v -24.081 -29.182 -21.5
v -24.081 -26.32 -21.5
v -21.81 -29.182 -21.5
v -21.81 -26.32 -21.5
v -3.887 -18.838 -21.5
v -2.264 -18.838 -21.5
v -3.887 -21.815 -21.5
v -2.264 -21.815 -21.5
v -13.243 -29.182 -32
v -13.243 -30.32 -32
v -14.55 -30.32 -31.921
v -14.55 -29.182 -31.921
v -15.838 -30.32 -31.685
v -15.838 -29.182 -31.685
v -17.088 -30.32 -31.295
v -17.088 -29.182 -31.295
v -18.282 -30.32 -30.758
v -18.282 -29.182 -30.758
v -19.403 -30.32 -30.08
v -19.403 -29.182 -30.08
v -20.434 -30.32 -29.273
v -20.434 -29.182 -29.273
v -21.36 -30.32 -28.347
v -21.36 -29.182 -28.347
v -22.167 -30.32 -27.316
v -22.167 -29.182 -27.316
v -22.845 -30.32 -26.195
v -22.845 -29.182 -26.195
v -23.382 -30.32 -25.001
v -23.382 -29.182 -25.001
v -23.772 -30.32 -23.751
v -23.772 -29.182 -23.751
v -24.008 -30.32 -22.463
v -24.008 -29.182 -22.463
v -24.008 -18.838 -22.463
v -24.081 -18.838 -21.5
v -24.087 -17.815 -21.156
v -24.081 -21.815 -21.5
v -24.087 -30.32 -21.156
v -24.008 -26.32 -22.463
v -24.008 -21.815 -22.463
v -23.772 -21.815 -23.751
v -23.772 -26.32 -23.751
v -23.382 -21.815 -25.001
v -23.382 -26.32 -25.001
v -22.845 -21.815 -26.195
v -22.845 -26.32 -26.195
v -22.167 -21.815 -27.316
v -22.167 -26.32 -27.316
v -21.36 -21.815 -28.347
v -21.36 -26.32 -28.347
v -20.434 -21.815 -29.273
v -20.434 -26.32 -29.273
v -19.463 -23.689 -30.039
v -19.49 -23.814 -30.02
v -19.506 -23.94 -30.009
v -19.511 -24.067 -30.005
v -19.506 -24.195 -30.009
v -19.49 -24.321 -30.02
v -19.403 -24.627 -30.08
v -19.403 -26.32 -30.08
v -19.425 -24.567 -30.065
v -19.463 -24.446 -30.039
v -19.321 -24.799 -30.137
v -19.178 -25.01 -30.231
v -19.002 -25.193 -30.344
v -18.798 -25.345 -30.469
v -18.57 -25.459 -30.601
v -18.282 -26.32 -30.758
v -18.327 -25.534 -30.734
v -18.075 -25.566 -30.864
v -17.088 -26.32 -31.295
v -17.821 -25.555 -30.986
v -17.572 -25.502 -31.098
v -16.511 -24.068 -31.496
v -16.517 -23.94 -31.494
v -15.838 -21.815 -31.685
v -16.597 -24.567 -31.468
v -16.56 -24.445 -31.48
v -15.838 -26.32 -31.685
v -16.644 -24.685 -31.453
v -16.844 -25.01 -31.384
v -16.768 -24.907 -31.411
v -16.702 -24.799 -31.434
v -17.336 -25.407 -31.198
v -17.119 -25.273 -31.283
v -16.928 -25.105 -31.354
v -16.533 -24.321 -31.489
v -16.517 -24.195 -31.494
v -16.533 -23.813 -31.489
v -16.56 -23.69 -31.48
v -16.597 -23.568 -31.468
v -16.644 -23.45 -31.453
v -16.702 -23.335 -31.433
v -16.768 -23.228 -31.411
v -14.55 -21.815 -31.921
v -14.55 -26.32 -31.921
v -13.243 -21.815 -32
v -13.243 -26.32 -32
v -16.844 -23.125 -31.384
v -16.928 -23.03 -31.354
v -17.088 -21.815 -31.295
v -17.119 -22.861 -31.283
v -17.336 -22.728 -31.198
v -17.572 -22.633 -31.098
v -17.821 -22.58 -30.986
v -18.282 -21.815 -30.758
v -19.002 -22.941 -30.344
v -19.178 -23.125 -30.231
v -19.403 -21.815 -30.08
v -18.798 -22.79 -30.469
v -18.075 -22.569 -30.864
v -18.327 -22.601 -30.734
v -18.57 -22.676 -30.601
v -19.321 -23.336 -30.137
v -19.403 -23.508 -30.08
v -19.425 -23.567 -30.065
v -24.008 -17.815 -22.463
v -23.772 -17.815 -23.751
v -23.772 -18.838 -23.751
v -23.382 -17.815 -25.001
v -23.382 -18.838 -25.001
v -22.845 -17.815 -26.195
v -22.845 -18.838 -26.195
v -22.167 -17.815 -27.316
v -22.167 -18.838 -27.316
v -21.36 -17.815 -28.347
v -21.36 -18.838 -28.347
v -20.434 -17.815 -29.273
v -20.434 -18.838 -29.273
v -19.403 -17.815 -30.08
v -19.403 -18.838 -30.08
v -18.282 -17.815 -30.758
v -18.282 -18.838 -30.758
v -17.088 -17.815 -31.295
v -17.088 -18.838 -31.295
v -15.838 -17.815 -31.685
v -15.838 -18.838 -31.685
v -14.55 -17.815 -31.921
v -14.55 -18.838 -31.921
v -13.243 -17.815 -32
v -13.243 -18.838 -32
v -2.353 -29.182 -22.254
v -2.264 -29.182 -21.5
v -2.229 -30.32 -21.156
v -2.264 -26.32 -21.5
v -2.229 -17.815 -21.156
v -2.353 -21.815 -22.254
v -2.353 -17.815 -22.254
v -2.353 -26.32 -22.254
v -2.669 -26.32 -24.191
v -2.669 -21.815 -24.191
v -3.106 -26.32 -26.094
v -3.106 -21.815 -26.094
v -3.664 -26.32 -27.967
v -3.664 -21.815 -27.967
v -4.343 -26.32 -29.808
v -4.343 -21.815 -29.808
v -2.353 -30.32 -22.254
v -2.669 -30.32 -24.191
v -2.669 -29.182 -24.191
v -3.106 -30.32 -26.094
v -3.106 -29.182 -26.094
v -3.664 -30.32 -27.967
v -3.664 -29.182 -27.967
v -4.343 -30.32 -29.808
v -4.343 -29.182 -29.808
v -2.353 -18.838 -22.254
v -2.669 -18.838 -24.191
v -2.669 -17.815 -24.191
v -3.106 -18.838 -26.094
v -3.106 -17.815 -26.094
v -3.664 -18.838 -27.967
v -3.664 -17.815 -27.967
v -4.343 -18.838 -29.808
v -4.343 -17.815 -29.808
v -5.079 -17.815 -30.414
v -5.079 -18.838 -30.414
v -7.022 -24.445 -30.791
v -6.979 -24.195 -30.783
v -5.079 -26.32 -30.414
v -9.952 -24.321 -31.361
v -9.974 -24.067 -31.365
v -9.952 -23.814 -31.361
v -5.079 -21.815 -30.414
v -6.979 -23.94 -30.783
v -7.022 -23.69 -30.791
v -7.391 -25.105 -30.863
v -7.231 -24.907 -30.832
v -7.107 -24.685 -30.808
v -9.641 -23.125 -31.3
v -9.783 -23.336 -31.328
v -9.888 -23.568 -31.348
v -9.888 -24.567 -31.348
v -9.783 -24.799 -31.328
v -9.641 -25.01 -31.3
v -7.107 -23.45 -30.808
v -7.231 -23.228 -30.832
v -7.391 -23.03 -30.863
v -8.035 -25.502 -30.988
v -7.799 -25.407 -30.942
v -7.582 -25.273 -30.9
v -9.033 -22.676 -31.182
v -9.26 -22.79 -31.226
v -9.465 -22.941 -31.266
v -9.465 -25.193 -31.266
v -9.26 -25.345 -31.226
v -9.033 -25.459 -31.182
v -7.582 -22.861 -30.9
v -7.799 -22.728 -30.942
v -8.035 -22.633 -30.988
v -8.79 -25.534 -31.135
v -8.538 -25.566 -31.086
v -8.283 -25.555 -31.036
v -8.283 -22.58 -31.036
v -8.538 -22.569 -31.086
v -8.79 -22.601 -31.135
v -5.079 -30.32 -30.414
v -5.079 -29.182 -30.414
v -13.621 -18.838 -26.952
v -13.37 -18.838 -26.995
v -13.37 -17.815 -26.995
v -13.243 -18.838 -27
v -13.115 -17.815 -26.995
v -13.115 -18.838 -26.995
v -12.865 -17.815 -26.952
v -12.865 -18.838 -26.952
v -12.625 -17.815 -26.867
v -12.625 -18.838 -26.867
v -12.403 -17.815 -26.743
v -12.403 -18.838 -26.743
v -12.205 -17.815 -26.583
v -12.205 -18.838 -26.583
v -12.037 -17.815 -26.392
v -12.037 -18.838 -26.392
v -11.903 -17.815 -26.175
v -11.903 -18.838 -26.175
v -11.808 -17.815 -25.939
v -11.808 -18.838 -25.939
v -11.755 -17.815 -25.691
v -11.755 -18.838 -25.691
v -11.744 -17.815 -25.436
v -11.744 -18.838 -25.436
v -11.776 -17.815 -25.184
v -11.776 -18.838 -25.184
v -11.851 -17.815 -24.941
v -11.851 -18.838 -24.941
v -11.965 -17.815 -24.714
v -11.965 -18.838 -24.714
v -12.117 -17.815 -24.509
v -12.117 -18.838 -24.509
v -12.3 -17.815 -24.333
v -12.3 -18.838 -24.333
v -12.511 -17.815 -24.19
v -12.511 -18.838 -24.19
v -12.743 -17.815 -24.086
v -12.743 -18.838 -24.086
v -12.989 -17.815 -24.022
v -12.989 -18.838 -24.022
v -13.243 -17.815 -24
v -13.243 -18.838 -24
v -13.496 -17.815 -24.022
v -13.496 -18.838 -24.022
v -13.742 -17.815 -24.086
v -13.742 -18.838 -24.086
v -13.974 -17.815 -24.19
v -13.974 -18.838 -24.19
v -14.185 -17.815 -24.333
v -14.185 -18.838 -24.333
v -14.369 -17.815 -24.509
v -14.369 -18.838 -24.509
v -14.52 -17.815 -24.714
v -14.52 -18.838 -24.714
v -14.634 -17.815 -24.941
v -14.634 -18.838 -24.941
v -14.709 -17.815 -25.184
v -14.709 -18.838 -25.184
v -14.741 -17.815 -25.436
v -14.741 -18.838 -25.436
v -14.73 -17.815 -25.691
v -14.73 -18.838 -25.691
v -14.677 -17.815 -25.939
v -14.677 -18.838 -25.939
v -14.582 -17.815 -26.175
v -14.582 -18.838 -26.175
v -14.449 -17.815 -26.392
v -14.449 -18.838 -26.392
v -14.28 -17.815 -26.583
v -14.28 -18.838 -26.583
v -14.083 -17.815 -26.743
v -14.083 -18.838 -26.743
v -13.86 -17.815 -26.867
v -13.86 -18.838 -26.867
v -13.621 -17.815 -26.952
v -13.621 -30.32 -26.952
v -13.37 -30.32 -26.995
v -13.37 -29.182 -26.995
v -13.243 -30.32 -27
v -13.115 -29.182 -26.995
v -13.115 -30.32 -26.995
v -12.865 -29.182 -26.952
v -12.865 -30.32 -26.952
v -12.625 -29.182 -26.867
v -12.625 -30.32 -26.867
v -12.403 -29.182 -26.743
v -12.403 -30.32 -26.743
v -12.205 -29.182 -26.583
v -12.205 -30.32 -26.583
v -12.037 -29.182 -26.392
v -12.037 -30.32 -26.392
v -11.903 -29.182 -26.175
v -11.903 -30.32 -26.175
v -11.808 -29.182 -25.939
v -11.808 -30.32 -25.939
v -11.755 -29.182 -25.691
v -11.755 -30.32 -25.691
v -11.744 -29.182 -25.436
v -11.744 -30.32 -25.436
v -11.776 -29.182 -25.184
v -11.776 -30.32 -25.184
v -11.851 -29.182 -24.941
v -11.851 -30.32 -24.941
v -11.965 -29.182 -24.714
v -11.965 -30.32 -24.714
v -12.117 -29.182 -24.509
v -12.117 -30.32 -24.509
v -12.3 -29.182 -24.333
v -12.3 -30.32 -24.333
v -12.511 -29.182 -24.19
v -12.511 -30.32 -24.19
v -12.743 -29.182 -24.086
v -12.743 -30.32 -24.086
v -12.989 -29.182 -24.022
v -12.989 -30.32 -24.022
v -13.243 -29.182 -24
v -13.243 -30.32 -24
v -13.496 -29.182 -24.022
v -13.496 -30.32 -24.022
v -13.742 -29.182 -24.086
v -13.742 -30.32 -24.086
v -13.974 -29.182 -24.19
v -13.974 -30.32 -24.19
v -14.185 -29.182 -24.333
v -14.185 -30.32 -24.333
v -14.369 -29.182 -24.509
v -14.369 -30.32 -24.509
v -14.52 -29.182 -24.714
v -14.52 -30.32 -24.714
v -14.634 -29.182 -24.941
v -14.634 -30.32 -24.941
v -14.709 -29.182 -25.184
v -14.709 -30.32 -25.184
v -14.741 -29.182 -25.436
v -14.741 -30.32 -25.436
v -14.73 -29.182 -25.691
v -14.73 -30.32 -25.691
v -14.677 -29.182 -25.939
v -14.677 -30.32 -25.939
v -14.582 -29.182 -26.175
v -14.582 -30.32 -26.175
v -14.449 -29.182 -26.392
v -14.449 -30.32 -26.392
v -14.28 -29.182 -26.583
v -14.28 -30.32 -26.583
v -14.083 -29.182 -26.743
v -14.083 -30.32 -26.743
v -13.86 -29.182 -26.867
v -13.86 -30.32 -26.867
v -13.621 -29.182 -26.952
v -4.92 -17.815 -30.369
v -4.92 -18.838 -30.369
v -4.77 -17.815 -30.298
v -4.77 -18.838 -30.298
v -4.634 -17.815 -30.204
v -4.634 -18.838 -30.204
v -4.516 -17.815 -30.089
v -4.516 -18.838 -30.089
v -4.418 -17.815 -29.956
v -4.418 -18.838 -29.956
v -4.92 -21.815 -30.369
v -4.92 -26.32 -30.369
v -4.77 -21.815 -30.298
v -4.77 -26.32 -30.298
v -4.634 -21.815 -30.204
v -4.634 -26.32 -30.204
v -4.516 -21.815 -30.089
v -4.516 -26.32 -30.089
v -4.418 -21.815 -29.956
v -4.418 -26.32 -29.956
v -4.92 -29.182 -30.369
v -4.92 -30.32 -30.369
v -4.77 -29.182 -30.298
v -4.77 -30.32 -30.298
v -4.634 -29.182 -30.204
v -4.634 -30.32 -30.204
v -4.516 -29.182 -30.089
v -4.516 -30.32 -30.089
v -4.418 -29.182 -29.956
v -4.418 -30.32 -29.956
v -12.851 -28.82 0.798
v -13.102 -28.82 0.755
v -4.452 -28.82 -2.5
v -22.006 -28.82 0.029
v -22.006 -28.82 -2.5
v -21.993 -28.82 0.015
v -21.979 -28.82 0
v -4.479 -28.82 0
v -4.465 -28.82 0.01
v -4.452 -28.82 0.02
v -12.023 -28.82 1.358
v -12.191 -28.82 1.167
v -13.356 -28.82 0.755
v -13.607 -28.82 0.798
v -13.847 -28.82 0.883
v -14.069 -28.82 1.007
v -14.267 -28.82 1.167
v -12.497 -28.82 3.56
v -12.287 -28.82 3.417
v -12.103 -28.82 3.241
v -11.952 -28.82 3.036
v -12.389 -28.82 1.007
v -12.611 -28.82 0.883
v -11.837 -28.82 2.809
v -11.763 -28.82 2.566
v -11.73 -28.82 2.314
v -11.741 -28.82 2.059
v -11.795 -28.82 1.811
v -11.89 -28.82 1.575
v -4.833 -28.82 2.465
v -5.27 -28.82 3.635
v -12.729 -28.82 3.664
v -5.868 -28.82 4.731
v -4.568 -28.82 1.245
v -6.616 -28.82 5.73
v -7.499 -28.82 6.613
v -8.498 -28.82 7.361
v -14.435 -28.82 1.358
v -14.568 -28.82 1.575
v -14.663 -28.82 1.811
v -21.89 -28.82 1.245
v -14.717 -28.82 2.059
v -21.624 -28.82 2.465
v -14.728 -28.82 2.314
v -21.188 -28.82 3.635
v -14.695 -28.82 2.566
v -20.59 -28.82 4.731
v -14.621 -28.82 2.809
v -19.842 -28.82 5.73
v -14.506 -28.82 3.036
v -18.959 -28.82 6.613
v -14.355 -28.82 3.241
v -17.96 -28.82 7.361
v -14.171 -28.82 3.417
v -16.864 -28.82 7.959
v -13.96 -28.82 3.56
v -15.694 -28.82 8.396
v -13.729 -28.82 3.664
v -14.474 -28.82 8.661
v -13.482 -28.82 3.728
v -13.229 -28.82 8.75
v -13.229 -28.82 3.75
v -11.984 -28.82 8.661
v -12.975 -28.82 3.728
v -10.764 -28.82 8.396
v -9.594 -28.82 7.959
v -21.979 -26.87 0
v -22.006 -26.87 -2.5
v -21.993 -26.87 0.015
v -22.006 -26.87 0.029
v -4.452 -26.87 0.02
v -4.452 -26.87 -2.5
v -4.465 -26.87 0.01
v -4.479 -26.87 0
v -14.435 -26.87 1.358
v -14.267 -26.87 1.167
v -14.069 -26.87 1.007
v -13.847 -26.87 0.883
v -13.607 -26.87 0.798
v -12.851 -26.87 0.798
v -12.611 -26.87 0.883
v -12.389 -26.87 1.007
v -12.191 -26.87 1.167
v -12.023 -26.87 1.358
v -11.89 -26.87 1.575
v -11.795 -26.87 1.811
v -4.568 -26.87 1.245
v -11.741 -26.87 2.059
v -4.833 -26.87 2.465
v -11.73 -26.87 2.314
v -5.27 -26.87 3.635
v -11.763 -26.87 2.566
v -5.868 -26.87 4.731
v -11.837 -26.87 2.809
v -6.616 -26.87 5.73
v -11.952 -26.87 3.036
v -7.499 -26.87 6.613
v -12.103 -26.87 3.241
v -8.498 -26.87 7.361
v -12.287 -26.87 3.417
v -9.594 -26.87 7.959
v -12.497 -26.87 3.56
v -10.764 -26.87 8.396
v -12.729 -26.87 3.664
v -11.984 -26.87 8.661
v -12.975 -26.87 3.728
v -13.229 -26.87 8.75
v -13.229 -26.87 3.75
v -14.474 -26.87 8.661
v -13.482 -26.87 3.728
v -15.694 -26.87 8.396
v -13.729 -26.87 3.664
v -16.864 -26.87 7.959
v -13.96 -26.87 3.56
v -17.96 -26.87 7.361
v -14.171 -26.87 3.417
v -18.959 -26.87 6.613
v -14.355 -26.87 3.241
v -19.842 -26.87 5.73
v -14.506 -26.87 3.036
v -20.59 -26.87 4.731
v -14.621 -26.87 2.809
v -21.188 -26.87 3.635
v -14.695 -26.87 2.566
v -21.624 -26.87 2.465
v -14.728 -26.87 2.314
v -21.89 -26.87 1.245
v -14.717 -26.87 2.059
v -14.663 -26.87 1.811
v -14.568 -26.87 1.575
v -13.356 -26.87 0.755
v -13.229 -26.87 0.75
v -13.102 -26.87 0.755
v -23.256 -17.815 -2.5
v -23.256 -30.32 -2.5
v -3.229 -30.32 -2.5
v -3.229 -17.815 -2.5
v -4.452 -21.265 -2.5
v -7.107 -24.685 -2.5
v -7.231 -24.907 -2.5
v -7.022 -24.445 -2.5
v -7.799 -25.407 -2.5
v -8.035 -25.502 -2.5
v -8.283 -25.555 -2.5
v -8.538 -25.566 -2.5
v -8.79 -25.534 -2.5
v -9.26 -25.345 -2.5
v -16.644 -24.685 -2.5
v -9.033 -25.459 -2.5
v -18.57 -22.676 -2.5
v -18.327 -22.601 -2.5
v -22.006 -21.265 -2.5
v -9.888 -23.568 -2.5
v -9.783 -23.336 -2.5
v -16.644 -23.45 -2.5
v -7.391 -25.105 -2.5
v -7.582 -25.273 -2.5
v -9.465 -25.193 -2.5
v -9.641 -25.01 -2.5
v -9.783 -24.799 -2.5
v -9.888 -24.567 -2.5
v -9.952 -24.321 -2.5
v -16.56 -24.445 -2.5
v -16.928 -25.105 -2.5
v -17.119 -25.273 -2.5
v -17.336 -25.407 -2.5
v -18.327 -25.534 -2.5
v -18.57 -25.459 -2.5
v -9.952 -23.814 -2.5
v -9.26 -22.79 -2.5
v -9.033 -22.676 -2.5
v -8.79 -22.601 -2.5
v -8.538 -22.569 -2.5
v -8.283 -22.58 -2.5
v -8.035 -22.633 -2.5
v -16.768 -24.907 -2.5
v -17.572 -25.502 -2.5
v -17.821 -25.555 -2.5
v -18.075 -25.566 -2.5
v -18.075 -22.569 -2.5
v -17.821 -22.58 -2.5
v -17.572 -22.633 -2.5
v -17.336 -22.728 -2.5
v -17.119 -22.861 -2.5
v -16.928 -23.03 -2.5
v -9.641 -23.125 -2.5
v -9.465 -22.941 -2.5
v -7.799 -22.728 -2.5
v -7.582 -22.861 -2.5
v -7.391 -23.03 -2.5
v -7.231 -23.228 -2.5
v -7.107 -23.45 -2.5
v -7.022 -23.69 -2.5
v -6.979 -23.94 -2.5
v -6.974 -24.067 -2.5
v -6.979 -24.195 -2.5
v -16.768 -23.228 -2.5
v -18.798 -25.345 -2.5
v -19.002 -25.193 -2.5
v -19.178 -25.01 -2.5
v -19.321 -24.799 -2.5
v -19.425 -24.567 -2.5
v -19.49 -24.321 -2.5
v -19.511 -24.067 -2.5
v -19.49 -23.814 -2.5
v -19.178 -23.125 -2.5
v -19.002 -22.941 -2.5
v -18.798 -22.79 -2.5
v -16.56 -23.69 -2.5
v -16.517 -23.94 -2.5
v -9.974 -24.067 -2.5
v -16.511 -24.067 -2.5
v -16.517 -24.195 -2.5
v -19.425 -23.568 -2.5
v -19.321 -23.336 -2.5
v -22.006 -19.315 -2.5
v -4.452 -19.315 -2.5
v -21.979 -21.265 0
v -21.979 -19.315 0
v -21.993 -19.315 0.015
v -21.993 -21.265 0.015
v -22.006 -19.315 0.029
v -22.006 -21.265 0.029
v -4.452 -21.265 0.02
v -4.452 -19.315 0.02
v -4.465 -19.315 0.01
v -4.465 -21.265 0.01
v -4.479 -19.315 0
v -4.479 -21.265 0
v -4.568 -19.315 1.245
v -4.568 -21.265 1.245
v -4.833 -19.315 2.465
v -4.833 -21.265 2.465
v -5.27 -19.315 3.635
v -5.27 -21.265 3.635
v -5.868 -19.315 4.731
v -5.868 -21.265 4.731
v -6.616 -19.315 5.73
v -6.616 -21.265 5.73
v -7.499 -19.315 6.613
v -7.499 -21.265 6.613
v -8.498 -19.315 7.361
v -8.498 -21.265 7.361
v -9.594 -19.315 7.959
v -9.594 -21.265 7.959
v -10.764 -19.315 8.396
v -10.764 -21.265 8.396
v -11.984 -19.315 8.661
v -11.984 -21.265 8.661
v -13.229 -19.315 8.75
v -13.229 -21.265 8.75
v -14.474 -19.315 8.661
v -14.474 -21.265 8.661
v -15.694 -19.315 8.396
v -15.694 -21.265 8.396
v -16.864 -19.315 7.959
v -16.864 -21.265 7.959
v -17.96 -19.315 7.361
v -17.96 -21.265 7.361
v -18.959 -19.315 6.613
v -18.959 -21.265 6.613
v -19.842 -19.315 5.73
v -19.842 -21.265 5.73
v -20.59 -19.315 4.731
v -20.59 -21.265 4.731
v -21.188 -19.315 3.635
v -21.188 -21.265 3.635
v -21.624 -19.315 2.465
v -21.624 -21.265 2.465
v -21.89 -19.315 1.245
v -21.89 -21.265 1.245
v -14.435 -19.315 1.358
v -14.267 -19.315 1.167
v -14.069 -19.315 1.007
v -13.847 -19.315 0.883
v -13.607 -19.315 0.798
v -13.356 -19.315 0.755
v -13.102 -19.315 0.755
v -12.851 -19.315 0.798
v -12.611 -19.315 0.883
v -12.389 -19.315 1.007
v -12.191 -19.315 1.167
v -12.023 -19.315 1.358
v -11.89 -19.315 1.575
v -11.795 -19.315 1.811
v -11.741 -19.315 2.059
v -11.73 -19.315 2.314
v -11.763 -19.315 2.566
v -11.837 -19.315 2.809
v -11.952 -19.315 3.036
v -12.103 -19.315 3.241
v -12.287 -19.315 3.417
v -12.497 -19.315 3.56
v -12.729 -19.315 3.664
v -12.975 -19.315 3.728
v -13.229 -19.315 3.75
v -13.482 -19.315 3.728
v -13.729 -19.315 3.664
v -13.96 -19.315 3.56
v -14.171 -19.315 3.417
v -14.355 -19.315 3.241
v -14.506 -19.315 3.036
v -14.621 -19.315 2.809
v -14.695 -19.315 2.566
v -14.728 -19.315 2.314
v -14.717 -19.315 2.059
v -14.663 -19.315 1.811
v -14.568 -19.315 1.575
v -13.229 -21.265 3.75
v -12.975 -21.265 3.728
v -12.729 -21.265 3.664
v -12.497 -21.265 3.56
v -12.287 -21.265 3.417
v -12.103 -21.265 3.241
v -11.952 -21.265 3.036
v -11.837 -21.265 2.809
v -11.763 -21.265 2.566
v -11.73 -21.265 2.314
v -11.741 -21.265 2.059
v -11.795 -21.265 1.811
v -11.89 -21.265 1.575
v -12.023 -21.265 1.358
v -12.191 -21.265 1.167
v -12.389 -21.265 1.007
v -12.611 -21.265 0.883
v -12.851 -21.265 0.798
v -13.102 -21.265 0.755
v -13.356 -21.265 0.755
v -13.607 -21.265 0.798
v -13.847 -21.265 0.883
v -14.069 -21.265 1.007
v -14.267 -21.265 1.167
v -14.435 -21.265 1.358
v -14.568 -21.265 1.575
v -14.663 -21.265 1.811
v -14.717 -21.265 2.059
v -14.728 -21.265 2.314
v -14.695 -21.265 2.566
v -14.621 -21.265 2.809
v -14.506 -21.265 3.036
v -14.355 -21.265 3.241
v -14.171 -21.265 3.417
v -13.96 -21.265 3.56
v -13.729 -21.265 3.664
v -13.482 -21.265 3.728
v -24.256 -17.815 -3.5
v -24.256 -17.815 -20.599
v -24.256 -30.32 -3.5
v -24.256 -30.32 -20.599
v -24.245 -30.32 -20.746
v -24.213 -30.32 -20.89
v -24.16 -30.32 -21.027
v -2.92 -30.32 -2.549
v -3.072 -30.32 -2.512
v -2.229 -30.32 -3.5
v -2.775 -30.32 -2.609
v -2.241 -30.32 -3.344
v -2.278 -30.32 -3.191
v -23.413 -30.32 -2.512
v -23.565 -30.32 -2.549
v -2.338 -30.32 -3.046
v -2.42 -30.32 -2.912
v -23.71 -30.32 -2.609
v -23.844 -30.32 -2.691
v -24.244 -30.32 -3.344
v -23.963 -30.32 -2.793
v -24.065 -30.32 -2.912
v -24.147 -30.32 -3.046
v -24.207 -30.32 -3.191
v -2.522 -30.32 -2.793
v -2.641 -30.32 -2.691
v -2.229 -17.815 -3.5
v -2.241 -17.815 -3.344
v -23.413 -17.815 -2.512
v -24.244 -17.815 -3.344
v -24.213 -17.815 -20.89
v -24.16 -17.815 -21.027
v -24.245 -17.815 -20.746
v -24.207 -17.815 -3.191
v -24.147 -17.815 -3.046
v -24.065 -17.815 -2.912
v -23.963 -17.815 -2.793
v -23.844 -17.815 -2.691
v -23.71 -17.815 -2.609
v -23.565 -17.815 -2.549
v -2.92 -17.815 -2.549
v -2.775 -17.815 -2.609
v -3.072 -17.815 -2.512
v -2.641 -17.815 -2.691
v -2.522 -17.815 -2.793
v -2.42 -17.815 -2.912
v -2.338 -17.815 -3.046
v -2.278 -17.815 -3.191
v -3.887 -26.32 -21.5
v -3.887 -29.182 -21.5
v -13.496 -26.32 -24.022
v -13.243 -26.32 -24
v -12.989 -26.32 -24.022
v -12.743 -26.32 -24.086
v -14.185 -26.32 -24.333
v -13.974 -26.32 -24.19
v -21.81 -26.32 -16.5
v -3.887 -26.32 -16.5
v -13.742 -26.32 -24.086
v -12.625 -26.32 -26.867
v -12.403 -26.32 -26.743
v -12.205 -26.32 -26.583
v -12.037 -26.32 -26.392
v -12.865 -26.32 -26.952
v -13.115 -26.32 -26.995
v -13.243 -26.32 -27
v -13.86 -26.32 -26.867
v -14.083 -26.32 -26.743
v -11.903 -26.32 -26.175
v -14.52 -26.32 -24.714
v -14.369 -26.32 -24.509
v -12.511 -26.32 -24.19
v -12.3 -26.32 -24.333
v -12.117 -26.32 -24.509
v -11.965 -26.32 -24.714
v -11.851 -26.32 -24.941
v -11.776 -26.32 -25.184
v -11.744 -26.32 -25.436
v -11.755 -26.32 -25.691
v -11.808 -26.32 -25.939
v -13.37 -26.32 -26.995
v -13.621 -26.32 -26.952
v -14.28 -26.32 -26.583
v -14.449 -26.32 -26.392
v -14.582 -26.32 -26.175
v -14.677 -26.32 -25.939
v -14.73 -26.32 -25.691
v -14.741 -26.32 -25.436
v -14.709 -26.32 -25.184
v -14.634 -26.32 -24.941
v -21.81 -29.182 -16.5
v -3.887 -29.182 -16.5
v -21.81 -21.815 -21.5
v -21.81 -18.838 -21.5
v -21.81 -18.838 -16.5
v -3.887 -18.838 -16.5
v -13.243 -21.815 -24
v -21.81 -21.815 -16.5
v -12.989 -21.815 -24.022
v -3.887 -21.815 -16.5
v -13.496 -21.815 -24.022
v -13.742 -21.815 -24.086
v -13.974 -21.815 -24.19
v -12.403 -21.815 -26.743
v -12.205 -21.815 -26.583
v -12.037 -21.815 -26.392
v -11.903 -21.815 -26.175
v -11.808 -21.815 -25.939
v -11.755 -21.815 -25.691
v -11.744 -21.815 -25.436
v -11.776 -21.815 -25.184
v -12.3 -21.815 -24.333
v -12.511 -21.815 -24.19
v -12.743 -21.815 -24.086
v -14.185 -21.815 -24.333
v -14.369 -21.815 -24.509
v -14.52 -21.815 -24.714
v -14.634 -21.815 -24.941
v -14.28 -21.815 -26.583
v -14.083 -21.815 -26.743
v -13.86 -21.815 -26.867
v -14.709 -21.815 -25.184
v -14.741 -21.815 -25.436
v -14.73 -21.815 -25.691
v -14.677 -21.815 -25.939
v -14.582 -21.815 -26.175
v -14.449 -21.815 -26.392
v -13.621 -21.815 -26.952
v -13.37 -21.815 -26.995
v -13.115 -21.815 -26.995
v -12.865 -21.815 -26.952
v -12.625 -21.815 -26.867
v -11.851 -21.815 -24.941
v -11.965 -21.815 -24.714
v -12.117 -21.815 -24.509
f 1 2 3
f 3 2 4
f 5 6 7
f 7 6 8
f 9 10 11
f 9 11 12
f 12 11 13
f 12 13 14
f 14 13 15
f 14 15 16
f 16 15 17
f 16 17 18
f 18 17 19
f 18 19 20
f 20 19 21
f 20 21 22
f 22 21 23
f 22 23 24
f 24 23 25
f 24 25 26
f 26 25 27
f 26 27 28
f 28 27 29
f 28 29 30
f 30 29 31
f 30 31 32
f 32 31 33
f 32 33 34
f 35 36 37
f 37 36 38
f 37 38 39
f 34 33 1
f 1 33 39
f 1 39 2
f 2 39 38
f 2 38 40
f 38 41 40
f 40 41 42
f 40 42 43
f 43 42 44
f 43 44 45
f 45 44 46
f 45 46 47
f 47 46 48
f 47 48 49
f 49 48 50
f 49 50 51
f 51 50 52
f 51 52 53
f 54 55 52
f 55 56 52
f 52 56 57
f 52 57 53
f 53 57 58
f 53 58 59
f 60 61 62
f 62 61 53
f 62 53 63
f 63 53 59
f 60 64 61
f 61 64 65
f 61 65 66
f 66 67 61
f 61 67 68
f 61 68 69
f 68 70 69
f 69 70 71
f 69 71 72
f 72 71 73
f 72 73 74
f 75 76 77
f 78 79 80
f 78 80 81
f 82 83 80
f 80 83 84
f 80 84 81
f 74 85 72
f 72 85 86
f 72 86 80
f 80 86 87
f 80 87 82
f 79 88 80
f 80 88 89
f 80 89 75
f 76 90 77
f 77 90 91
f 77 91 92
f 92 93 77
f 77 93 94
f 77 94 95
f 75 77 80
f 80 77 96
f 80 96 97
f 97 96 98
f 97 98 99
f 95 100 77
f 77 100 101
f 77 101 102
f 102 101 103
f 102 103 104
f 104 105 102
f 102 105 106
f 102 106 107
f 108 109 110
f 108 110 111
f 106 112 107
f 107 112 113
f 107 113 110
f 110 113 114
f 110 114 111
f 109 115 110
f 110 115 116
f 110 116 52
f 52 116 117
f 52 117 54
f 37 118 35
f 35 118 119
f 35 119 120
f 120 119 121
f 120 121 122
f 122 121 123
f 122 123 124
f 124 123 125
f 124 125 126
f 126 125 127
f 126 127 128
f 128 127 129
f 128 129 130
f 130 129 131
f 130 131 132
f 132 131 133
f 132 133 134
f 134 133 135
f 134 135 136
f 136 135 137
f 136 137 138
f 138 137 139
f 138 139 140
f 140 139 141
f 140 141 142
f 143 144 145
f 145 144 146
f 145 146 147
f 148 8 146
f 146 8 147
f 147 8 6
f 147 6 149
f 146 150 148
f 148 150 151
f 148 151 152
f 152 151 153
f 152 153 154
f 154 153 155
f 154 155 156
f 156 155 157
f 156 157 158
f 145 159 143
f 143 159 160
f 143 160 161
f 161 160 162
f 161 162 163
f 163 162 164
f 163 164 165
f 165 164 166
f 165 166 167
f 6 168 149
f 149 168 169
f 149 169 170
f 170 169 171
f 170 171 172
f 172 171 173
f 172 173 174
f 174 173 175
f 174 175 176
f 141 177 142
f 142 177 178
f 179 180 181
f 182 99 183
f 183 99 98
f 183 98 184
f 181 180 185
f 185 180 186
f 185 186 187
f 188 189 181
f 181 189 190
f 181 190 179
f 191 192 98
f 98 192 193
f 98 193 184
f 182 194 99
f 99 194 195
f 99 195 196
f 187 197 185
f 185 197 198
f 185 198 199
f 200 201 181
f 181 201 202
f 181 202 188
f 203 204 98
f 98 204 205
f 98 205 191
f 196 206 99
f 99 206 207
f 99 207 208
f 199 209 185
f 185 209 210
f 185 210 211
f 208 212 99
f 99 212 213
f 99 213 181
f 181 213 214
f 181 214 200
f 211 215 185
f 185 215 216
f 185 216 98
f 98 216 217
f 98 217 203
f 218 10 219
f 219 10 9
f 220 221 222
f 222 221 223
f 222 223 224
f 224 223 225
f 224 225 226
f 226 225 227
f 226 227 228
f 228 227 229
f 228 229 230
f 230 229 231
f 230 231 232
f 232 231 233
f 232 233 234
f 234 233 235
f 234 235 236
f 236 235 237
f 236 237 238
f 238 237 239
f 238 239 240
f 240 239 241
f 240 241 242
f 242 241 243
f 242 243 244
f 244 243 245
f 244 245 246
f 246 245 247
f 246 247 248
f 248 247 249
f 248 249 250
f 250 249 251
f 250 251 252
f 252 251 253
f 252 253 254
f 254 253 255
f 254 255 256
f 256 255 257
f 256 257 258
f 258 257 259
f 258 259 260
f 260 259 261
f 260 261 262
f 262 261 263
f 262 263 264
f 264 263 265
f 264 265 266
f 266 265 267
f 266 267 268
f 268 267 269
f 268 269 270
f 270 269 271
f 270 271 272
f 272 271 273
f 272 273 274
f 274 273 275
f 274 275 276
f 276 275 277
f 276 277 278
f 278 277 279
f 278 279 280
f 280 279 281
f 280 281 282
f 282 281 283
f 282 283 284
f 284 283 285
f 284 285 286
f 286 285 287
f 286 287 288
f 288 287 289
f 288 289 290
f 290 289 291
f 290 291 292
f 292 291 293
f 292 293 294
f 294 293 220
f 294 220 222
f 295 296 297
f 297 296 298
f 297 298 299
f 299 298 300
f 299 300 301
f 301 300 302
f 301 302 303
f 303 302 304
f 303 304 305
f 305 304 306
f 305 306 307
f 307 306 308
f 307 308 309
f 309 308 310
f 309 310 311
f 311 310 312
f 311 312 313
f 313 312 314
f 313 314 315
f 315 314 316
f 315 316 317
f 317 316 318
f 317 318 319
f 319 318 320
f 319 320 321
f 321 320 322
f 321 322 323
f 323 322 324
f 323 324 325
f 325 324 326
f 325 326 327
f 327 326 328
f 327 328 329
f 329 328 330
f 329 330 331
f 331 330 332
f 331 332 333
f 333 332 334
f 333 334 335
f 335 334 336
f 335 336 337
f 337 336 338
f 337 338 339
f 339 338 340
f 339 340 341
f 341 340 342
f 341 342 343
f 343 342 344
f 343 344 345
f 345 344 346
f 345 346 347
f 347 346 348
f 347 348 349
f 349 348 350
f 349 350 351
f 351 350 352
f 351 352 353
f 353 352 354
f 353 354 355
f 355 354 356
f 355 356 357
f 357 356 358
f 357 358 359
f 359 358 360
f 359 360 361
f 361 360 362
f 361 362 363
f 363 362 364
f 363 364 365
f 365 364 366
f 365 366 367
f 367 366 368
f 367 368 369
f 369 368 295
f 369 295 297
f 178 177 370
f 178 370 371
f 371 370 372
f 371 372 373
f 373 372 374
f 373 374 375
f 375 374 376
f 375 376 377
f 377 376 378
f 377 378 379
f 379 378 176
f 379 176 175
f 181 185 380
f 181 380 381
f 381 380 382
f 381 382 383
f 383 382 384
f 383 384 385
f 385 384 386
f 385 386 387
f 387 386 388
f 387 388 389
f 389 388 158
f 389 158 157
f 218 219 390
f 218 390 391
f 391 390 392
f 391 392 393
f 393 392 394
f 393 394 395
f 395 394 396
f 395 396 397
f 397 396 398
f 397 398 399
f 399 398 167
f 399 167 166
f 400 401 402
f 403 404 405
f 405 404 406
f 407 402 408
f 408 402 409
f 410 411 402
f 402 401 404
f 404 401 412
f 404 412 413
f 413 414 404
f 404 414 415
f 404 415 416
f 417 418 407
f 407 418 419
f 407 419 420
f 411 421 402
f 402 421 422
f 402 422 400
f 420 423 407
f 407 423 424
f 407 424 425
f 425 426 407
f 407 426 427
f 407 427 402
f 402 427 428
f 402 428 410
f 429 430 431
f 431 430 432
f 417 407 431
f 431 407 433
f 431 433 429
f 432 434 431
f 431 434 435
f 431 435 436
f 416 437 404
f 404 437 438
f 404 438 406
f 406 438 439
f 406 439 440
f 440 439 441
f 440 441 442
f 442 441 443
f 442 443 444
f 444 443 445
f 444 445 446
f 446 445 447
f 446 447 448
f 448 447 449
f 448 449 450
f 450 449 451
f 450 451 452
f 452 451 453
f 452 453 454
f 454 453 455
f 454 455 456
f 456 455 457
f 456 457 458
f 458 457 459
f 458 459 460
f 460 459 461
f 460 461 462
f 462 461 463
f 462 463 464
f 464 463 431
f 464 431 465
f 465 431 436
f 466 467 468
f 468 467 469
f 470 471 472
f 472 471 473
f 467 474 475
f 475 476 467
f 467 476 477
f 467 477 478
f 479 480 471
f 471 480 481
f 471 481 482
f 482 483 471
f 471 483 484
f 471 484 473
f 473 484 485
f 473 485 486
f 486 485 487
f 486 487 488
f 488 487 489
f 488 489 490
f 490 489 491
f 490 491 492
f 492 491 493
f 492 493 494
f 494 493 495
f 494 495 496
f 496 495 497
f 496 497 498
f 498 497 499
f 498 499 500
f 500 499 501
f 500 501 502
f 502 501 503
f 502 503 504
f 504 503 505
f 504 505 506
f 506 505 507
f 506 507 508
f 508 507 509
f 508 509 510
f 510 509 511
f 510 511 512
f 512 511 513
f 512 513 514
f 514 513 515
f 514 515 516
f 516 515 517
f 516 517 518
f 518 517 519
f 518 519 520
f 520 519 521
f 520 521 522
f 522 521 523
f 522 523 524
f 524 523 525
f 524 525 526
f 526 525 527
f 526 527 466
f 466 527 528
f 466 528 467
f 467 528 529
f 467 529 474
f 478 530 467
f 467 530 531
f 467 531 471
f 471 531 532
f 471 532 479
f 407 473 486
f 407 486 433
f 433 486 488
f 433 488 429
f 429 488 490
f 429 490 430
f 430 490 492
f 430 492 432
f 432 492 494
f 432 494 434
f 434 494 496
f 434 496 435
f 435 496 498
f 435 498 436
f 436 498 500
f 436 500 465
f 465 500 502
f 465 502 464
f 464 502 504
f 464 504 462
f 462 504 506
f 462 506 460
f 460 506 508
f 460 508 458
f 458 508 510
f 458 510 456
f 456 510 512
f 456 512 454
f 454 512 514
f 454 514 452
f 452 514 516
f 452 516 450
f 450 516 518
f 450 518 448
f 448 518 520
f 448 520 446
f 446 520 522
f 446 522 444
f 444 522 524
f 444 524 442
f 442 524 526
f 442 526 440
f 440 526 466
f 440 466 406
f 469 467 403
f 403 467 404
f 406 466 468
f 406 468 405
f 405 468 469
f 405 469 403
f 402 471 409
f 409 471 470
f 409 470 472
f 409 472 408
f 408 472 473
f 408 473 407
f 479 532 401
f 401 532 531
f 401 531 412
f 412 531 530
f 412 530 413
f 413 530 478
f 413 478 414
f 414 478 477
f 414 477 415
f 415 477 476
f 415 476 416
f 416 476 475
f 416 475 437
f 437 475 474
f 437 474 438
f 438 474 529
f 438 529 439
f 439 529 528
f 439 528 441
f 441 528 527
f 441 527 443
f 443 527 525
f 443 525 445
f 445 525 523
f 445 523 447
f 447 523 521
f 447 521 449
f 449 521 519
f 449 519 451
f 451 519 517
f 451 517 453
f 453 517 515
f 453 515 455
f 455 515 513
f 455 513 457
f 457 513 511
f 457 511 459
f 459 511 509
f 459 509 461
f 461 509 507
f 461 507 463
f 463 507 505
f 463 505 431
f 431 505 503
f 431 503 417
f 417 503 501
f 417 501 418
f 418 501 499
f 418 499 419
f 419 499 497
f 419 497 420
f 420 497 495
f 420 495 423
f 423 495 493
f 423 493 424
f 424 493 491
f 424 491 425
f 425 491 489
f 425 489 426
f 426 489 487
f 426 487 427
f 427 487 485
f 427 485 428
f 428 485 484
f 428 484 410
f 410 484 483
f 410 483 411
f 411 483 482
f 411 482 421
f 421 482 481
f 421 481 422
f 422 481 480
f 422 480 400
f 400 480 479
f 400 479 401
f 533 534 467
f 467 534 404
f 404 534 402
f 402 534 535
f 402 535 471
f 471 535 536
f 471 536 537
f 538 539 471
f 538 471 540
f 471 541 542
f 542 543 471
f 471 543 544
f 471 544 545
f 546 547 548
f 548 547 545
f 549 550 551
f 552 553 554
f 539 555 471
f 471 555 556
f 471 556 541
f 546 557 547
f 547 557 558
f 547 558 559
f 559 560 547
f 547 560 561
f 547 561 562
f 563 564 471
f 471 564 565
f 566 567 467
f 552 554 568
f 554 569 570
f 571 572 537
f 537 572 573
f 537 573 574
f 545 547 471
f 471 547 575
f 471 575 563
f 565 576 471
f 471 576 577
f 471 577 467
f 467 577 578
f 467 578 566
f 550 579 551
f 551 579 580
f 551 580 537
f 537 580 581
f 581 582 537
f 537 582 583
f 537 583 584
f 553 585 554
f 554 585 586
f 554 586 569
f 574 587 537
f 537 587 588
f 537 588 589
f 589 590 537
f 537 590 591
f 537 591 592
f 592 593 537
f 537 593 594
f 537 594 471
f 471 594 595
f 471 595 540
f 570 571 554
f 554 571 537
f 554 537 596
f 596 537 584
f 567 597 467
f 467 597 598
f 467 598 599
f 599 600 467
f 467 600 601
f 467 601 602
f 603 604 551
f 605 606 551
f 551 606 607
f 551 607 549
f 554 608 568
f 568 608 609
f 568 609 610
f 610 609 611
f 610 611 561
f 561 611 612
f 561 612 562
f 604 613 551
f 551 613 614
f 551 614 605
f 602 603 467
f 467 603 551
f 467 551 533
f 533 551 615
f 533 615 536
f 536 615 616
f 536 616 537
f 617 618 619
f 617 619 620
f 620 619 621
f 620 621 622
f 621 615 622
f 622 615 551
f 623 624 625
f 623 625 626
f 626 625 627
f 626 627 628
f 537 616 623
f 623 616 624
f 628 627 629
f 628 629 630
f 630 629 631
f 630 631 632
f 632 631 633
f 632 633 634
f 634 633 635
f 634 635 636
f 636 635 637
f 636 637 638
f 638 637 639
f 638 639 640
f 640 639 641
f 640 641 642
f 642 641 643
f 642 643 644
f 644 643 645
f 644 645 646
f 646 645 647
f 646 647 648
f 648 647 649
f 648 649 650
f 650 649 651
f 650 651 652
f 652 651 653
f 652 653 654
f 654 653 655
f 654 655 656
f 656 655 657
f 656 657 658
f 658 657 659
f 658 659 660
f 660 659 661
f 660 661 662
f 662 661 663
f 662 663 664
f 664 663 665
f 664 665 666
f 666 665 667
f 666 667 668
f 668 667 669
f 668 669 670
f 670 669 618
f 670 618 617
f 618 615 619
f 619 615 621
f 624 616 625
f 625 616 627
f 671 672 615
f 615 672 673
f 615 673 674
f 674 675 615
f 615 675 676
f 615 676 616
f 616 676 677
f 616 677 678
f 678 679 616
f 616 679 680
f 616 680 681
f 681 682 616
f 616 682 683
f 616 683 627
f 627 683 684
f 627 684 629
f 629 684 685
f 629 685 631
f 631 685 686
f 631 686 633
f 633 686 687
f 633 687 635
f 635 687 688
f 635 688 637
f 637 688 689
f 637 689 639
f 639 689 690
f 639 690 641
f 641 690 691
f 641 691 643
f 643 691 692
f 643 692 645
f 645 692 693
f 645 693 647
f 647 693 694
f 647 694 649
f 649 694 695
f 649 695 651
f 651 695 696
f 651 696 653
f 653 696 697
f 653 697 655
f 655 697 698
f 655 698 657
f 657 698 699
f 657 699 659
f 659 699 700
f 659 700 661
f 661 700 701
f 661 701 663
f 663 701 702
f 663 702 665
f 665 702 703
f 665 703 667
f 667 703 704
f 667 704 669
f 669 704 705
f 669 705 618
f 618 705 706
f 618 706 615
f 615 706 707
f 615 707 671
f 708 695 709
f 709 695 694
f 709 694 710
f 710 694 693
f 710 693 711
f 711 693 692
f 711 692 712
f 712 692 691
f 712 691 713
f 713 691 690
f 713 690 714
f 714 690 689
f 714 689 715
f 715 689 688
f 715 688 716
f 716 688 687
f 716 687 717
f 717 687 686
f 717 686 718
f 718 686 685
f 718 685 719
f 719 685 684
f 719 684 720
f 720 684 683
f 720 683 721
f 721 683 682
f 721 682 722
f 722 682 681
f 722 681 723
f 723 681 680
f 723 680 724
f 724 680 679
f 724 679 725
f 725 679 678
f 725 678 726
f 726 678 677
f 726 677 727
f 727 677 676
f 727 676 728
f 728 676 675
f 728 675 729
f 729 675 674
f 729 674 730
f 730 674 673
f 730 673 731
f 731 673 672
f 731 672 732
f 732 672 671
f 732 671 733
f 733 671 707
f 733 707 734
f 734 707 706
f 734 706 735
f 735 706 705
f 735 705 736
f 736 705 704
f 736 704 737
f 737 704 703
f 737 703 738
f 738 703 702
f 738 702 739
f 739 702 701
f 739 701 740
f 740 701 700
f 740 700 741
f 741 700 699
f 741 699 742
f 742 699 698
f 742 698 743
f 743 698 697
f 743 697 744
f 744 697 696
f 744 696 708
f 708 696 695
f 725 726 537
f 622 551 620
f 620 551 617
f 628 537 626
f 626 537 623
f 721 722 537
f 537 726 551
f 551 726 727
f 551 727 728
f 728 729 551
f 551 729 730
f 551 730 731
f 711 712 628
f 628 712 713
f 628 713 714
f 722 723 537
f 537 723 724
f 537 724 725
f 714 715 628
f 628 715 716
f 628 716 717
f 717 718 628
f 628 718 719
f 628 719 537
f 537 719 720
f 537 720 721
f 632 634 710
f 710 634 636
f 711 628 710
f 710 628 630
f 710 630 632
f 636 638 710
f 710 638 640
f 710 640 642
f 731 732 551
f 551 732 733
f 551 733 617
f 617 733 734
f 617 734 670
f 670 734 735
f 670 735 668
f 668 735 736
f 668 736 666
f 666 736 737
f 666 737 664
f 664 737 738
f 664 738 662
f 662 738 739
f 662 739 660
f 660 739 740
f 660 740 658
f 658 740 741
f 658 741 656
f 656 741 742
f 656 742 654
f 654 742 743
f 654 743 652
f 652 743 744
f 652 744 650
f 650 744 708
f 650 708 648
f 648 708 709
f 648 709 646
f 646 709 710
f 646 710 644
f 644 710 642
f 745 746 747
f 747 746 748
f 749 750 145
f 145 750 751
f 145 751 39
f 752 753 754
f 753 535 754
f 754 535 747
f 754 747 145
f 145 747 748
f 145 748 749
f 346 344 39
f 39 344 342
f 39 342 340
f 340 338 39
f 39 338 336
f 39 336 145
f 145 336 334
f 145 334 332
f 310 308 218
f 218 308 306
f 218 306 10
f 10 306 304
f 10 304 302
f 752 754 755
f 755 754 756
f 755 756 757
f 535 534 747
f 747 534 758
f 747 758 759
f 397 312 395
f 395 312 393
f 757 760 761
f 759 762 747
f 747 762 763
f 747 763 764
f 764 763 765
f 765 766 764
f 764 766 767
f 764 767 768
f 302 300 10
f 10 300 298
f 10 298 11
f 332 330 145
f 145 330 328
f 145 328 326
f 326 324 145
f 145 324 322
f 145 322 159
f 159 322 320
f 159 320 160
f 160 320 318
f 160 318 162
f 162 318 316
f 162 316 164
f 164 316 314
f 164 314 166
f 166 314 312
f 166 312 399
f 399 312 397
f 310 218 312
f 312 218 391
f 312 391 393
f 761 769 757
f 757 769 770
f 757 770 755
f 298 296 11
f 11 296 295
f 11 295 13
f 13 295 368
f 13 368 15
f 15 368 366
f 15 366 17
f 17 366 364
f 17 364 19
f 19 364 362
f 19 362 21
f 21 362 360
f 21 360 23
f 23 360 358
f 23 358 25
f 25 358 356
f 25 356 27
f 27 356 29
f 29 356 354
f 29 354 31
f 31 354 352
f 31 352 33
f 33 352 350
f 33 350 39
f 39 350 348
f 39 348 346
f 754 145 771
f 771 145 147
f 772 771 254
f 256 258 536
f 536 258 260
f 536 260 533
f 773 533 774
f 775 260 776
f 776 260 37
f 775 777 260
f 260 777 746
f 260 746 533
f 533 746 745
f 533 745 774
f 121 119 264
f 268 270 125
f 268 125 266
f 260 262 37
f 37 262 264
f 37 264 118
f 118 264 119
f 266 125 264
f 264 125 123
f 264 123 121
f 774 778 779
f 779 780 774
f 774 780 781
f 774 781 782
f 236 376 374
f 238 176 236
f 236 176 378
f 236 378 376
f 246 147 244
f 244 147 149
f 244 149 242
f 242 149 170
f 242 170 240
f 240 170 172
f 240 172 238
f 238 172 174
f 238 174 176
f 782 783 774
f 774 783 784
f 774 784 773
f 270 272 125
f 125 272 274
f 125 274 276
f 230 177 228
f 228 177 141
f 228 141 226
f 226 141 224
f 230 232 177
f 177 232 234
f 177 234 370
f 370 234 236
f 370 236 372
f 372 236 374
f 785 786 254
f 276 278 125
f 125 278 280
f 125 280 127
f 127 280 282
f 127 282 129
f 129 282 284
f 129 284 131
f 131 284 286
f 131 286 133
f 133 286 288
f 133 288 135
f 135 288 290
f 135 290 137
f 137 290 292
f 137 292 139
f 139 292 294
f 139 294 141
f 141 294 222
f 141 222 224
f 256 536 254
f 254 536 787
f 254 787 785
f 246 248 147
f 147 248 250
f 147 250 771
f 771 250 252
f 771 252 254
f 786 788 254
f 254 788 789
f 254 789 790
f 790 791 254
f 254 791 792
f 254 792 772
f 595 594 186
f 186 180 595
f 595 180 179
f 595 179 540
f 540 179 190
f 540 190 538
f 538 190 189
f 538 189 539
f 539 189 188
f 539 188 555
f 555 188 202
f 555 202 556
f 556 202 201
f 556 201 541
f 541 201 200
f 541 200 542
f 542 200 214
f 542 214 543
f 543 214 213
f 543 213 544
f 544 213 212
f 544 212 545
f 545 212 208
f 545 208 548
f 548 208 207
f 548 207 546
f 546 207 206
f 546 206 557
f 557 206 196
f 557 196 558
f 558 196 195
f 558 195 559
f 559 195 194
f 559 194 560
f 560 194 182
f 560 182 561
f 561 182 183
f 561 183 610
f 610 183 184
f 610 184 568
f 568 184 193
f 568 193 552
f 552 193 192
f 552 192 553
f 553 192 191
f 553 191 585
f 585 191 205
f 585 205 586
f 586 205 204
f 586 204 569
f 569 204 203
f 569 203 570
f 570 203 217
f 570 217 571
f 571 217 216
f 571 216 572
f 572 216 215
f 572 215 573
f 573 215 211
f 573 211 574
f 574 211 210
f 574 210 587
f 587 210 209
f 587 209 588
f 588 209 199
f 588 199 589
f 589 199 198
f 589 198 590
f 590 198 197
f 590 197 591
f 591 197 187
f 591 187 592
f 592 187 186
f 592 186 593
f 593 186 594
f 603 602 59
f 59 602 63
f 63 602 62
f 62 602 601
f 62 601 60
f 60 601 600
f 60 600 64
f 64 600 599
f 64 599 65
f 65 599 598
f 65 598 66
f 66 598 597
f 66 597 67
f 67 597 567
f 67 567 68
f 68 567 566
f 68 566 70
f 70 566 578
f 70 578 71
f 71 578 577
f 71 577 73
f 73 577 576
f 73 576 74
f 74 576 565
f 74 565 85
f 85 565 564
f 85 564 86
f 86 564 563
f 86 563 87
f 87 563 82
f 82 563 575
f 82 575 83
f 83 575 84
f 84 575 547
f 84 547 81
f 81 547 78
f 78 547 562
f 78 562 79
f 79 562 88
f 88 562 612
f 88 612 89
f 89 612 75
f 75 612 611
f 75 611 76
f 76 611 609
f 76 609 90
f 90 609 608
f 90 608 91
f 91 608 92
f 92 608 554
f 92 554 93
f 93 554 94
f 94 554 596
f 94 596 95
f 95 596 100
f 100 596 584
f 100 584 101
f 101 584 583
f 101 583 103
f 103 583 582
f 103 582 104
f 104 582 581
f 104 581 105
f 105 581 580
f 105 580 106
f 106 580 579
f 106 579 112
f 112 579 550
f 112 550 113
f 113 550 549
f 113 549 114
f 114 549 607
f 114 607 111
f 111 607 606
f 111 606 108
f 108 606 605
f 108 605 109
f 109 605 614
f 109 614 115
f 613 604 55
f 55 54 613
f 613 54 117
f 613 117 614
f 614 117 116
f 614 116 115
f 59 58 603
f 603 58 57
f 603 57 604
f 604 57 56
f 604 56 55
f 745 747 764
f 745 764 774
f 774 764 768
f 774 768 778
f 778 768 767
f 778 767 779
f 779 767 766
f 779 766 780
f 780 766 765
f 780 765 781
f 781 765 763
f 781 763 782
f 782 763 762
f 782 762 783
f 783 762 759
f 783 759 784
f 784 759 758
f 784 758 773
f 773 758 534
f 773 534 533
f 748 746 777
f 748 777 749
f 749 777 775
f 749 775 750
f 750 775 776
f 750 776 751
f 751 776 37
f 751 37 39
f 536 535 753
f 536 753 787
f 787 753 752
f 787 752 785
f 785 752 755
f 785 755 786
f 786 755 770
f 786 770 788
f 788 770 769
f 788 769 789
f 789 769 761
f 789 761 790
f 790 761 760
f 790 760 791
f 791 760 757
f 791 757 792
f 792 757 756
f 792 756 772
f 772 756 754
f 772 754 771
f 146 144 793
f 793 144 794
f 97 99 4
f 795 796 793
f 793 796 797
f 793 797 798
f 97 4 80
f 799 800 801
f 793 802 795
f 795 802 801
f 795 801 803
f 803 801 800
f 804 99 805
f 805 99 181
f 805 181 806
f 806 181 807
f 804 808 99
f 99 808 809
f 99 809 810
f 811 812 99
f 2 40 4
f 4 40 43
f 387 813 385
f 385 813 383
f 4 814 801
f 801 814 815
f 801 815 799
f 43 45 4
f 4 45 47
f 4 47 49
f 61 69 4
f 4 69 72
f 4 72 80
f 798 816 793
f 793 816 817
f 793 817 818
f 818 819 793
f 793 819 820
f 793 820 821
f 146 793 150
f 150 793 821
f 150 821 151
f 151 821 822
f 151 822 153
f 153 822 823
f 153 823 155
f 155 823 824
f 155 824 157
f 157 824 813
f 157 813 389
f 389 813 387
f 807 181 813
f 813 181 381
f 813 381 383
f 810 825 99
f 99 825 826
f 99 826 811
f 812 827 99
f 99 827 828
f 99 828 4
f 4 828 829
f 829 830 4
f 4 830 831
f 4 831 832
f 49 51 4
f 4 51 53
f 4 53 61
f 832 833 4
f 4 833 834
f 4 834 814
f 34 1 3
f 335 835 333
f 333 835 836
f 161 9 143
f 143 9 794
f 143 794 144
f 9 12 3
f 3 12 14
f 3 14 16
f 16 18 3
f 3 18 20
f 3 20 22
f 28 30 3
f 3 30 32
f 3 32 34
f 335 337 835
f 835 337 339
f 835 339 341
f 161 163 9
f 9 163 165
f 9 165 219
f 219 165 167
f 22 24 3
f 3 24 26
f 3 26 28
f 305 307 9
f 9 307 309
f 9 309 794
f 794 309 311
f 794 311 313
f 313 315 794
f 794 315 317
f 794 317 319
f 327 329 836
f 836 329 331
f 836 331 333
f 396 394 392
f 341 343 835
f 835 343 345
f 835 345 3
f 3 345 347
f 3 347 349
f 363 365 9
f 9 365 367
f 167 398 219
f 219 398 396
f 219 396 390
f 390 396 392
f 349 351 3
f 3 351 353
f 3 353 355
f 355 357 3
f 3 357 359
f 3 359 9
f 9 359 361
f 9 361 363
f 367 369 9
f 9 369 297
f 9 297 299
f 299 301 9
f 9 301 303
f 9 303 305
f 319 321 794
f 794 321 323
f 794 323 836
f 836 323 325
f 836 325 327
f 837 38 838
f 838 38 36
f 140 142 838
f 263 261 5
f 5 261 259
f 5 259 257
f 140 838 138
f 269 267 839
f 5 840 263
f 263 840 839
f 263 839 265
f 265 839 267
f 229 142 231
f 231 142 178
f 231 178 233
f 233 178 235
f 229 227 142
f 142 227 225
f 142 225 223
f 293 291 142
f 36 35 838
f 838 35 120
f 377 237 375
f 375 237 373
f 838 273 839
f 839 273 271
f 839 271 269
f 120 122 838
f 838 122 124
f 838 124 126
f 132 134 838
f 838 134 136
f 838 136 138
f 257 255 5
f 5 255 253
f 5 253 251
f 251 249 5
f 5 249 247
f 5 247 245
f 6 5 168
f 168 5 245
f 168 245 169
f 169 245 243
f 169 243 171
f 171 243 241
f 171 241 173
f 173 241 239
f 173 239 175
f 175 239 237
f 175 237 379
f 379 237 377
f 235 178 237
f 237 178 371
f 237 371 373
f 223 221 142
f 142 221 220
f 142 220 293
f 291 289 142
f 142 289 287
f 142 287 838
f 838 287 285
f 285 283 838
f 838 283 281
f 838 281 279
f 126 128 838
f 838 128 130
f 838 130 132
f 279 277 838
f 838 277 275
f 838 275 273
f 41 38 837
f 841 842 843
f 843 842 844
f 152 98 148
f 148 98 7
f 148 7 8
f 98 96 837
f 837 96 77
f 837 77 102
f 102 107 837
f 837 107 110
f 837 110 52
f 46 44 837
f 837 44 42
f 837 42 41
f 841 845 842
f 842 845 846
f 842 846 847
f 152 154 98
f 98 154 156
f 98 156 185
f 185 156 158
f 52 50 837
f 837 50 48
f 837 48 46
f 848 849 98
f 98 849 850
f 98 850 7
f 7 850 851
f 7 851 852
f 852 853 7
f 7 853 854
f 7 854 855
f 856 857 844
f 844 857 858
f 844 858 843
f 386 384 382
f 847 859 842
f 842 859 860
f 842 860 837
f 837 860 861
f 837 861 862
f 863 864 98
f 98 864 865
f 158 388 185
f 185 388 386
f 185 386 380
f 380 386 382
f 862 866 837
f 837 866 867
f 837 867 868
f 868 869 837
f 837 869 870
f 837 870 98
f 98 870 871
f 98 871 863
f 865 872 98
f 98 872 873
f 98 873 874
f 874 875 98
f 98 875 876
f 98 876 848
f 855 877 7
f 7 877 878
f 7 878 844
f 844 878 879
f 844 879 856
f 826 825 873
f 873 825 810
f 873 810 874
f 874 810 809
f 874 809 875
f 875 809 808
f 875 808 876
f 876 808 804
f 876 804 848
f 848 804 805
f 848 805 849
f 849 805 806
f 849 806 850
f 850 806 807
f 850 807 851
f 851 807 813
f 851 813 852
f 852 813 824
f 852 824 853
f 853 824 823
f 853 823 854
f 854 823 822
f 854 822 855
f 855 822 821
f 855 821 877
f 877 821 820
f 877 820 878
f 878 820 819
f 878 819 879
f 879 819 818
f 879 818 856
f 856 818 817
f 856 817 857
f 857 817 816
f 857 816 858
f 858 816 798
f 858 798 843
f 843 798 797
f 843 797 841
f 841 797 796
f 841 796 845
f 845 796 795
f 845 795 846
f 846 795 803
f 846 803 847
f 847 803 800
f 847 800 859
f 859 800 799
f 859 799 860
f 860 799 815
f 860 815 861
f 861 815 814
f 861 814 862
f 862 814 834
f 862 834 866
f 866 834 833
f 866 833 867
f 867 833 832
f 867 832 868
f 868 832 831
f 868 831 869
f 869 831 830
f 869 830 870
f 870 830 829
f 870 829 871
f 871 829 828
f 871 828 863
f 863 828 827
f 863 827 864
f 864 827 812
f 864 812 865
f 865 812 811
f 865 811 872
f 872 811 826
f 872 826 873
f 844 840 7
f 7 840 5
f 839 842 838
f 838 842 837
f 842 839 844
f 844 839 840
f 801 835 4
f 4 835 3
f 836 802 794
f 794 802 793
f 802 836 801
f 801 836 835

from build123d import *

# Parameters (mm, degrees)
SKETCH2_W               = 17.554431489
SKETCH2_H               = 1.95
BOSS_EXTRUDE1_DEPTH     = 8.75
BOSS_EXTRUDE1_2_DEPTH   = 8.75
CUT_EXTRUDE1_DEPTH      = 26.518349076
SKETCH4_W               = 22.027215745
SKETCH4_H               = 12.505427167
BOSS_EXTRUDE2_DEPTH     = 32
SKETCH5_R               = 1.5
CUT_EXTRUDE2_DEPTH      = 12
SKETCH6_W               = 22.027215745
SKETCH6_H               = 12.505427167
SKETCH6_W_2             = 17.554431489
SKETCH6_H_2             = 1.95
CUT_EXTRUDE3_DEPTH      = 2.5
SKETCH7_R               = 1.5
CUT_EXTRUDE4_DEPTH      = 13
CUT_EXTRUDE5_DEPTH      = 10
CUT_EXTRUDE5_DEPTH_BACK = 32
SKETCH8_R               = 1.5
FILLET3_R               = 1
SKETCH9_W               = 22.034876082
SKETCH9_H               = 2.976325088
SKETCH9_H_2             = 2.861616895
CUT_EXTRUDE6_DEPTH      = 11
SKETCH10_W              = 17.922244656
SKETCH10_H              = 2.976325088
SKETCH10_H_2            = 2.861616895
CUT_EXTRUDE7_DEPTH      = 5


with BuildPart() as part:
    # Sketch2 → Boss-Extrude1 (new body)
    with BuildSketch(Plane.XY):
        with Locations((-13.228930986, -27.845183414)):
            Rectangle(SKETCH2_W, SKETCH2_H)
    extrude(amount=BOSS_EXTRUDE1_DEPTH)


with BuildPart() as body_2:
    # Sketch2 → Boss-Extrude1 2 (new body)
    with BuildSketch(Plane.XY):
        with Locations((-13.228930986, -20.289756247)):
            Rectangle(SKETCH2_W, SKETCH2_H)
    extrude(amount=BOSS_EXTRUDE1_2_DEPTH)


with BuildPart() as cut_extrude1_tool:
    # Sketch3 → Cut-Extrude1 (new, through all)
    with BuildSketch(Plane(origin=(0, -19.314756247, 0), x_dir=(1, 0, 0), z_dir=(0, 1, 0))):
        with BuildLine():
            ThreePointArc((-13.228930986, -8.75), (-7.041746651, -6.187184335), (-4.478930986, 0))
            add(Edge.make_bspline(
                [(-4.478930986, 0), (1.138349918, -4.151657709), (-4.451715242, -8.75)],
                knots=[0, 0, 0, 1, 1, 1], degree=2))
            add(Edge.make_bspline(
                [(-22.006146731, -8.75), (-13.228930986, -12.473510392), (-4.451715242, -8.75)],
                knots=[0, 0, 0, 1, 1, 1], degree=2))
            add(Edge.make_bspline(
                [(-21.978930986, 0), (-25.926969228, -4.242865138), (-22.006146731, -8.75)],
                knots=[0, 0, 0, 1, 1, 1], degree=2))
            ThreePointArc((-21.978930986, 0), (-19.416115322, -6.187184335), (-13.228930986, -8.75))
        make_face()
    extrude(amount=-CUT_EXTRUDE1_DEPTH)


with BuildPart() as part_1:
    add(part.part)

    # Cut-Extrude1: cut by cut_extrude1_tool
    add(cut_extrude1_tool.part, mode=Mode.SUBTRACT)



with BuildPart() as body_2_1:
    add(body_2.part)

    # Cut-Extrude1: cut by cut_extrude1_tool
    add(cut_extrude1_tool.part, mode=Mode.SUBTRACT)


with BuildPart() as part_2:
    add(part_1.part)

    add(body_2_1.part)  # Boss-Extrude2 merges body 2
    # Sketch4 → Boss-Extrude2 (add)
    with BuildSketch(Plane(origin=(0, 0, 0), x_dir=(-1, 0, 0), z_dir=(0, 0, -1))):
        with Locations((13.242538859, -24.067469831)):
            Rectangle(SKETCH4_W, SKETCH4_H)
    extrude(amount=BOSS_EXTRUDE2_DEPTH)

    # Sketch5 → Cut-Extrude2 (cut)
    with BuildSketch(Plane(origin=(0, -19.314756247, 0), x_dir=(1, 0, 0), z_dir=(0, 1, 0))):
        with Locations(Location((-13.228930986, -2.25, 0), (0, 0, 270))):
            Circle(SKETCH5_R)
    extrude(amount=-CUT_EXTRUDE2_DEPTH, mode=Mode.SUBTRACT)

    # Sketch6 → Cut-Extrude3 (cut)
    with BuildSketch(Plane.XY):
        with Locations((-13.242538859, -24.067469831)):
            Rectangle(SKETCH6_W, SKETCH6_H)
        with Locations((-13.228930986, -27.845183414)):
            Rectangle(SKETCH6_W_2, SKETCH6_H_2, mode=Mode.SUBTRACT)
        with Locations((-13.228930986, -20.289756247)):
            Rectangle(SKETCH6_W_2, SKETCH6_H_2, mode=Mode.SUBTRACT)
    extrude(amount=-CUT_EXTRUDE3_DEPTH, mode=Mode.SUBTRACT)

    # Sketch7 → Cut-Extrude4 (cut)
    with BuildSketch(Plane(origin=(0, -17.814756247, 0), x_dir=(1, 0, 0), z_dir=(0, 1, 0))):
        with Locations(Location((-13.242538859, 25.5, 0), (0, 0, 270))):
            Circle(SKETCH7_R)
        with BuildLine():
            Line((-24.086865874, 21.155672985), (-24.256146731, 21.155672985))
            add(Edge.make_bspline(
                [(-2.228930986, 21.155672985), (11.471530889, 27.189710441), (-11.765166974, 53.431279988), (-37.007876173, 21.523583672), (-24.256146731, 21.155672985)],
                knots=[0, 0, 0, 0, 0.52011282, 1, 1, 1, 1], degree=3))
            add(Edge.make_bspline(
                [(-4.552660132, 30.311399113), (-2.685211009, 25.928521854), (-2.228930986, 21.155672985)],
                knots=[0, 0, 0, 1, 1, 1], degree=2))
            Line((-4.552660132, 30.311399113), (-13.242538859, 32))
            ThreePointArc((-13.242538859, 32), (-20.910636028, 28.823770155), (-24.086865874, 21.155672985))
        make_face()
    extrude(amount=-CUT_EXTRUDE4_DEPTH, mode=Mode.SUBTRACT)

    # Sketch8 → Cut-Extrude5 (cut, two sides: drawn at the far end of the back side and taken through both)
    with BuildSketch(Plane.XY.offset(-2.5).offset(-CUT_EXTRUDE5_DEPTH_BACK)):
        with Locations(Location((-18.011106811, -24.06746983, 0), (0, 0, 180))):
            Circle(SKETCH8_R)
        with Locations(Location((-8.473970906, -24.06746983, 0), (0, 0, 180))):
            Circle(SKETCH8_R)
    extrude(amount=CUT_EXTRUDE5_DEPTH + CUT_EXTRUDE5_DEPTH_BACK, mode=Mode.SUBTRACT)

    # Fillet3
    # the kernel refuses this fillet: 1 mm, written as the material it takes off along each edge
    with BuildSketch(Plane(origin=(-24.256146731, -15.314756247, -2.5), x_dir=(0, 0, -1), z_dir=(0, -1, 0)), Plane(origin=(-2.228930986, -32.820183414, -2.5), x_dir=(0, 0, -1), z_dir=(0, 1, 0))) as fillet3_piece_1:
        with BuildLine():
            CenterArc((FILLET3_R, FILLET3_R), FILLET3_R, 180, 90)
            Line((0, FILLET3_R), (-FILLET3_R * 0.02, FILLET3_R))
            Line((-FILLET3_R * 0.02, FILLET3_R), (-FILLET3_R * 0.02, -FILLET3_R * 0.02))
            Line((-FILLET3_R * 0.02, -FILLET3_R * 0.02), (FILLET3_R, -FILLET3_R * 0.02))
            Line((FILLET3_R, -FILLET3_R * 0.02), (FILLET3_R, 0))
        make_face()
    extrude(amount=17.505427167, mode=Mode.SUBTRACT)
    with BuildSketch(Plane(origin=(-24.256146731, -16.423026869, -21.155672985), x_dir=(1.0, 0, 2.5394386720559264e-12), z_dir=(0, -1, 0))) as fillet3_piece_2:
        with BuildLine():
            CenterArc((1, 0.556691751), FILLET3_R, 180, 33.827317624)
            Line((0, 0.556691751), (-0.02, 0.556691751))
            Line((-0.02, 0.556691751), (-0.02, 0))
            Line((-0.02, 0), (0, -0.02))
            ThreePointArc((0, -0.02), (0.084640429, -0.02), (0.152666474, -0.011133835))
            Line((0.152666474, -0.011133835), (0.169280857, 0))
        make_face()
    extrude(amount=15.288885922, mode=Mode.SUBTRACT)
    with BuildSketch(Plane(origin=(-4.552660132, -16.451585564, -30.311399113), x_dir=(0.3839298520349852, 0, 0.9233622629912891), z_dir=(0, -1, 0))) as fillet3_piece_3:
        with BuildLine():
            CenterArc((0.536514164, 0.999961682), FILLET3_R, 213.573886674, 56.927693277)
            Line((-0.296659206, 0.446949805), (-0.313322674, 0.435889568))
            Line((-0.313322674, 0.435889568), (-0.016663467, -0.011060238))
            Line((-0.016663467, -0.011060238), (-0.0001747, -0.019999237))
            ThreePointArc((-0.0001747, -0.019999237), (0.272634035, -0.021192075), (0.545443356, -0.019999234))
            Line((0.545443356, -0.019999234), (0.545268273, 0))
        make_face()
    extrude(amount=15.231768533, mode=Mode.SUBTRACT)

    # Sketch9 → Cut-Extrude6 (cut)
    with BuildSketch(Plane.XY.offset(-32.5)):
        with Locations((-13.229542087, -20.326593706)):
            Rectangle(SKETCH9_W, SKETCH9_H)
        with Locations((-13.229542087, -27.750991873)):
            Rectangle(SKETCH9_W, SKETCH9_H_2)
    extrude(amount=CUT_EXTRUDE6_DEPTH, mode=Mode.SUBTRACT)

    # Sketch10 → Cut-Extrude7 (cut)
    with BuildSketch(Plane(origin=(0, 0, -21.5), x_dir=(-1, 0, 0), z_dir=(0, 0, -1))):
        with Locations((12.848616278, -20.326593706)):
            Rectangle(SKETCH10_W, SKETCH10_H)
        with Locations((12.848616278, -27.750991873)):
            Rectangle(SKETCH10_W, SKETCH10_H_2)
    extrude(amount=-CUT_EXTRUDE7_DEPTH, mode=Mode.SUBTRACT)


solid = part_2.part
